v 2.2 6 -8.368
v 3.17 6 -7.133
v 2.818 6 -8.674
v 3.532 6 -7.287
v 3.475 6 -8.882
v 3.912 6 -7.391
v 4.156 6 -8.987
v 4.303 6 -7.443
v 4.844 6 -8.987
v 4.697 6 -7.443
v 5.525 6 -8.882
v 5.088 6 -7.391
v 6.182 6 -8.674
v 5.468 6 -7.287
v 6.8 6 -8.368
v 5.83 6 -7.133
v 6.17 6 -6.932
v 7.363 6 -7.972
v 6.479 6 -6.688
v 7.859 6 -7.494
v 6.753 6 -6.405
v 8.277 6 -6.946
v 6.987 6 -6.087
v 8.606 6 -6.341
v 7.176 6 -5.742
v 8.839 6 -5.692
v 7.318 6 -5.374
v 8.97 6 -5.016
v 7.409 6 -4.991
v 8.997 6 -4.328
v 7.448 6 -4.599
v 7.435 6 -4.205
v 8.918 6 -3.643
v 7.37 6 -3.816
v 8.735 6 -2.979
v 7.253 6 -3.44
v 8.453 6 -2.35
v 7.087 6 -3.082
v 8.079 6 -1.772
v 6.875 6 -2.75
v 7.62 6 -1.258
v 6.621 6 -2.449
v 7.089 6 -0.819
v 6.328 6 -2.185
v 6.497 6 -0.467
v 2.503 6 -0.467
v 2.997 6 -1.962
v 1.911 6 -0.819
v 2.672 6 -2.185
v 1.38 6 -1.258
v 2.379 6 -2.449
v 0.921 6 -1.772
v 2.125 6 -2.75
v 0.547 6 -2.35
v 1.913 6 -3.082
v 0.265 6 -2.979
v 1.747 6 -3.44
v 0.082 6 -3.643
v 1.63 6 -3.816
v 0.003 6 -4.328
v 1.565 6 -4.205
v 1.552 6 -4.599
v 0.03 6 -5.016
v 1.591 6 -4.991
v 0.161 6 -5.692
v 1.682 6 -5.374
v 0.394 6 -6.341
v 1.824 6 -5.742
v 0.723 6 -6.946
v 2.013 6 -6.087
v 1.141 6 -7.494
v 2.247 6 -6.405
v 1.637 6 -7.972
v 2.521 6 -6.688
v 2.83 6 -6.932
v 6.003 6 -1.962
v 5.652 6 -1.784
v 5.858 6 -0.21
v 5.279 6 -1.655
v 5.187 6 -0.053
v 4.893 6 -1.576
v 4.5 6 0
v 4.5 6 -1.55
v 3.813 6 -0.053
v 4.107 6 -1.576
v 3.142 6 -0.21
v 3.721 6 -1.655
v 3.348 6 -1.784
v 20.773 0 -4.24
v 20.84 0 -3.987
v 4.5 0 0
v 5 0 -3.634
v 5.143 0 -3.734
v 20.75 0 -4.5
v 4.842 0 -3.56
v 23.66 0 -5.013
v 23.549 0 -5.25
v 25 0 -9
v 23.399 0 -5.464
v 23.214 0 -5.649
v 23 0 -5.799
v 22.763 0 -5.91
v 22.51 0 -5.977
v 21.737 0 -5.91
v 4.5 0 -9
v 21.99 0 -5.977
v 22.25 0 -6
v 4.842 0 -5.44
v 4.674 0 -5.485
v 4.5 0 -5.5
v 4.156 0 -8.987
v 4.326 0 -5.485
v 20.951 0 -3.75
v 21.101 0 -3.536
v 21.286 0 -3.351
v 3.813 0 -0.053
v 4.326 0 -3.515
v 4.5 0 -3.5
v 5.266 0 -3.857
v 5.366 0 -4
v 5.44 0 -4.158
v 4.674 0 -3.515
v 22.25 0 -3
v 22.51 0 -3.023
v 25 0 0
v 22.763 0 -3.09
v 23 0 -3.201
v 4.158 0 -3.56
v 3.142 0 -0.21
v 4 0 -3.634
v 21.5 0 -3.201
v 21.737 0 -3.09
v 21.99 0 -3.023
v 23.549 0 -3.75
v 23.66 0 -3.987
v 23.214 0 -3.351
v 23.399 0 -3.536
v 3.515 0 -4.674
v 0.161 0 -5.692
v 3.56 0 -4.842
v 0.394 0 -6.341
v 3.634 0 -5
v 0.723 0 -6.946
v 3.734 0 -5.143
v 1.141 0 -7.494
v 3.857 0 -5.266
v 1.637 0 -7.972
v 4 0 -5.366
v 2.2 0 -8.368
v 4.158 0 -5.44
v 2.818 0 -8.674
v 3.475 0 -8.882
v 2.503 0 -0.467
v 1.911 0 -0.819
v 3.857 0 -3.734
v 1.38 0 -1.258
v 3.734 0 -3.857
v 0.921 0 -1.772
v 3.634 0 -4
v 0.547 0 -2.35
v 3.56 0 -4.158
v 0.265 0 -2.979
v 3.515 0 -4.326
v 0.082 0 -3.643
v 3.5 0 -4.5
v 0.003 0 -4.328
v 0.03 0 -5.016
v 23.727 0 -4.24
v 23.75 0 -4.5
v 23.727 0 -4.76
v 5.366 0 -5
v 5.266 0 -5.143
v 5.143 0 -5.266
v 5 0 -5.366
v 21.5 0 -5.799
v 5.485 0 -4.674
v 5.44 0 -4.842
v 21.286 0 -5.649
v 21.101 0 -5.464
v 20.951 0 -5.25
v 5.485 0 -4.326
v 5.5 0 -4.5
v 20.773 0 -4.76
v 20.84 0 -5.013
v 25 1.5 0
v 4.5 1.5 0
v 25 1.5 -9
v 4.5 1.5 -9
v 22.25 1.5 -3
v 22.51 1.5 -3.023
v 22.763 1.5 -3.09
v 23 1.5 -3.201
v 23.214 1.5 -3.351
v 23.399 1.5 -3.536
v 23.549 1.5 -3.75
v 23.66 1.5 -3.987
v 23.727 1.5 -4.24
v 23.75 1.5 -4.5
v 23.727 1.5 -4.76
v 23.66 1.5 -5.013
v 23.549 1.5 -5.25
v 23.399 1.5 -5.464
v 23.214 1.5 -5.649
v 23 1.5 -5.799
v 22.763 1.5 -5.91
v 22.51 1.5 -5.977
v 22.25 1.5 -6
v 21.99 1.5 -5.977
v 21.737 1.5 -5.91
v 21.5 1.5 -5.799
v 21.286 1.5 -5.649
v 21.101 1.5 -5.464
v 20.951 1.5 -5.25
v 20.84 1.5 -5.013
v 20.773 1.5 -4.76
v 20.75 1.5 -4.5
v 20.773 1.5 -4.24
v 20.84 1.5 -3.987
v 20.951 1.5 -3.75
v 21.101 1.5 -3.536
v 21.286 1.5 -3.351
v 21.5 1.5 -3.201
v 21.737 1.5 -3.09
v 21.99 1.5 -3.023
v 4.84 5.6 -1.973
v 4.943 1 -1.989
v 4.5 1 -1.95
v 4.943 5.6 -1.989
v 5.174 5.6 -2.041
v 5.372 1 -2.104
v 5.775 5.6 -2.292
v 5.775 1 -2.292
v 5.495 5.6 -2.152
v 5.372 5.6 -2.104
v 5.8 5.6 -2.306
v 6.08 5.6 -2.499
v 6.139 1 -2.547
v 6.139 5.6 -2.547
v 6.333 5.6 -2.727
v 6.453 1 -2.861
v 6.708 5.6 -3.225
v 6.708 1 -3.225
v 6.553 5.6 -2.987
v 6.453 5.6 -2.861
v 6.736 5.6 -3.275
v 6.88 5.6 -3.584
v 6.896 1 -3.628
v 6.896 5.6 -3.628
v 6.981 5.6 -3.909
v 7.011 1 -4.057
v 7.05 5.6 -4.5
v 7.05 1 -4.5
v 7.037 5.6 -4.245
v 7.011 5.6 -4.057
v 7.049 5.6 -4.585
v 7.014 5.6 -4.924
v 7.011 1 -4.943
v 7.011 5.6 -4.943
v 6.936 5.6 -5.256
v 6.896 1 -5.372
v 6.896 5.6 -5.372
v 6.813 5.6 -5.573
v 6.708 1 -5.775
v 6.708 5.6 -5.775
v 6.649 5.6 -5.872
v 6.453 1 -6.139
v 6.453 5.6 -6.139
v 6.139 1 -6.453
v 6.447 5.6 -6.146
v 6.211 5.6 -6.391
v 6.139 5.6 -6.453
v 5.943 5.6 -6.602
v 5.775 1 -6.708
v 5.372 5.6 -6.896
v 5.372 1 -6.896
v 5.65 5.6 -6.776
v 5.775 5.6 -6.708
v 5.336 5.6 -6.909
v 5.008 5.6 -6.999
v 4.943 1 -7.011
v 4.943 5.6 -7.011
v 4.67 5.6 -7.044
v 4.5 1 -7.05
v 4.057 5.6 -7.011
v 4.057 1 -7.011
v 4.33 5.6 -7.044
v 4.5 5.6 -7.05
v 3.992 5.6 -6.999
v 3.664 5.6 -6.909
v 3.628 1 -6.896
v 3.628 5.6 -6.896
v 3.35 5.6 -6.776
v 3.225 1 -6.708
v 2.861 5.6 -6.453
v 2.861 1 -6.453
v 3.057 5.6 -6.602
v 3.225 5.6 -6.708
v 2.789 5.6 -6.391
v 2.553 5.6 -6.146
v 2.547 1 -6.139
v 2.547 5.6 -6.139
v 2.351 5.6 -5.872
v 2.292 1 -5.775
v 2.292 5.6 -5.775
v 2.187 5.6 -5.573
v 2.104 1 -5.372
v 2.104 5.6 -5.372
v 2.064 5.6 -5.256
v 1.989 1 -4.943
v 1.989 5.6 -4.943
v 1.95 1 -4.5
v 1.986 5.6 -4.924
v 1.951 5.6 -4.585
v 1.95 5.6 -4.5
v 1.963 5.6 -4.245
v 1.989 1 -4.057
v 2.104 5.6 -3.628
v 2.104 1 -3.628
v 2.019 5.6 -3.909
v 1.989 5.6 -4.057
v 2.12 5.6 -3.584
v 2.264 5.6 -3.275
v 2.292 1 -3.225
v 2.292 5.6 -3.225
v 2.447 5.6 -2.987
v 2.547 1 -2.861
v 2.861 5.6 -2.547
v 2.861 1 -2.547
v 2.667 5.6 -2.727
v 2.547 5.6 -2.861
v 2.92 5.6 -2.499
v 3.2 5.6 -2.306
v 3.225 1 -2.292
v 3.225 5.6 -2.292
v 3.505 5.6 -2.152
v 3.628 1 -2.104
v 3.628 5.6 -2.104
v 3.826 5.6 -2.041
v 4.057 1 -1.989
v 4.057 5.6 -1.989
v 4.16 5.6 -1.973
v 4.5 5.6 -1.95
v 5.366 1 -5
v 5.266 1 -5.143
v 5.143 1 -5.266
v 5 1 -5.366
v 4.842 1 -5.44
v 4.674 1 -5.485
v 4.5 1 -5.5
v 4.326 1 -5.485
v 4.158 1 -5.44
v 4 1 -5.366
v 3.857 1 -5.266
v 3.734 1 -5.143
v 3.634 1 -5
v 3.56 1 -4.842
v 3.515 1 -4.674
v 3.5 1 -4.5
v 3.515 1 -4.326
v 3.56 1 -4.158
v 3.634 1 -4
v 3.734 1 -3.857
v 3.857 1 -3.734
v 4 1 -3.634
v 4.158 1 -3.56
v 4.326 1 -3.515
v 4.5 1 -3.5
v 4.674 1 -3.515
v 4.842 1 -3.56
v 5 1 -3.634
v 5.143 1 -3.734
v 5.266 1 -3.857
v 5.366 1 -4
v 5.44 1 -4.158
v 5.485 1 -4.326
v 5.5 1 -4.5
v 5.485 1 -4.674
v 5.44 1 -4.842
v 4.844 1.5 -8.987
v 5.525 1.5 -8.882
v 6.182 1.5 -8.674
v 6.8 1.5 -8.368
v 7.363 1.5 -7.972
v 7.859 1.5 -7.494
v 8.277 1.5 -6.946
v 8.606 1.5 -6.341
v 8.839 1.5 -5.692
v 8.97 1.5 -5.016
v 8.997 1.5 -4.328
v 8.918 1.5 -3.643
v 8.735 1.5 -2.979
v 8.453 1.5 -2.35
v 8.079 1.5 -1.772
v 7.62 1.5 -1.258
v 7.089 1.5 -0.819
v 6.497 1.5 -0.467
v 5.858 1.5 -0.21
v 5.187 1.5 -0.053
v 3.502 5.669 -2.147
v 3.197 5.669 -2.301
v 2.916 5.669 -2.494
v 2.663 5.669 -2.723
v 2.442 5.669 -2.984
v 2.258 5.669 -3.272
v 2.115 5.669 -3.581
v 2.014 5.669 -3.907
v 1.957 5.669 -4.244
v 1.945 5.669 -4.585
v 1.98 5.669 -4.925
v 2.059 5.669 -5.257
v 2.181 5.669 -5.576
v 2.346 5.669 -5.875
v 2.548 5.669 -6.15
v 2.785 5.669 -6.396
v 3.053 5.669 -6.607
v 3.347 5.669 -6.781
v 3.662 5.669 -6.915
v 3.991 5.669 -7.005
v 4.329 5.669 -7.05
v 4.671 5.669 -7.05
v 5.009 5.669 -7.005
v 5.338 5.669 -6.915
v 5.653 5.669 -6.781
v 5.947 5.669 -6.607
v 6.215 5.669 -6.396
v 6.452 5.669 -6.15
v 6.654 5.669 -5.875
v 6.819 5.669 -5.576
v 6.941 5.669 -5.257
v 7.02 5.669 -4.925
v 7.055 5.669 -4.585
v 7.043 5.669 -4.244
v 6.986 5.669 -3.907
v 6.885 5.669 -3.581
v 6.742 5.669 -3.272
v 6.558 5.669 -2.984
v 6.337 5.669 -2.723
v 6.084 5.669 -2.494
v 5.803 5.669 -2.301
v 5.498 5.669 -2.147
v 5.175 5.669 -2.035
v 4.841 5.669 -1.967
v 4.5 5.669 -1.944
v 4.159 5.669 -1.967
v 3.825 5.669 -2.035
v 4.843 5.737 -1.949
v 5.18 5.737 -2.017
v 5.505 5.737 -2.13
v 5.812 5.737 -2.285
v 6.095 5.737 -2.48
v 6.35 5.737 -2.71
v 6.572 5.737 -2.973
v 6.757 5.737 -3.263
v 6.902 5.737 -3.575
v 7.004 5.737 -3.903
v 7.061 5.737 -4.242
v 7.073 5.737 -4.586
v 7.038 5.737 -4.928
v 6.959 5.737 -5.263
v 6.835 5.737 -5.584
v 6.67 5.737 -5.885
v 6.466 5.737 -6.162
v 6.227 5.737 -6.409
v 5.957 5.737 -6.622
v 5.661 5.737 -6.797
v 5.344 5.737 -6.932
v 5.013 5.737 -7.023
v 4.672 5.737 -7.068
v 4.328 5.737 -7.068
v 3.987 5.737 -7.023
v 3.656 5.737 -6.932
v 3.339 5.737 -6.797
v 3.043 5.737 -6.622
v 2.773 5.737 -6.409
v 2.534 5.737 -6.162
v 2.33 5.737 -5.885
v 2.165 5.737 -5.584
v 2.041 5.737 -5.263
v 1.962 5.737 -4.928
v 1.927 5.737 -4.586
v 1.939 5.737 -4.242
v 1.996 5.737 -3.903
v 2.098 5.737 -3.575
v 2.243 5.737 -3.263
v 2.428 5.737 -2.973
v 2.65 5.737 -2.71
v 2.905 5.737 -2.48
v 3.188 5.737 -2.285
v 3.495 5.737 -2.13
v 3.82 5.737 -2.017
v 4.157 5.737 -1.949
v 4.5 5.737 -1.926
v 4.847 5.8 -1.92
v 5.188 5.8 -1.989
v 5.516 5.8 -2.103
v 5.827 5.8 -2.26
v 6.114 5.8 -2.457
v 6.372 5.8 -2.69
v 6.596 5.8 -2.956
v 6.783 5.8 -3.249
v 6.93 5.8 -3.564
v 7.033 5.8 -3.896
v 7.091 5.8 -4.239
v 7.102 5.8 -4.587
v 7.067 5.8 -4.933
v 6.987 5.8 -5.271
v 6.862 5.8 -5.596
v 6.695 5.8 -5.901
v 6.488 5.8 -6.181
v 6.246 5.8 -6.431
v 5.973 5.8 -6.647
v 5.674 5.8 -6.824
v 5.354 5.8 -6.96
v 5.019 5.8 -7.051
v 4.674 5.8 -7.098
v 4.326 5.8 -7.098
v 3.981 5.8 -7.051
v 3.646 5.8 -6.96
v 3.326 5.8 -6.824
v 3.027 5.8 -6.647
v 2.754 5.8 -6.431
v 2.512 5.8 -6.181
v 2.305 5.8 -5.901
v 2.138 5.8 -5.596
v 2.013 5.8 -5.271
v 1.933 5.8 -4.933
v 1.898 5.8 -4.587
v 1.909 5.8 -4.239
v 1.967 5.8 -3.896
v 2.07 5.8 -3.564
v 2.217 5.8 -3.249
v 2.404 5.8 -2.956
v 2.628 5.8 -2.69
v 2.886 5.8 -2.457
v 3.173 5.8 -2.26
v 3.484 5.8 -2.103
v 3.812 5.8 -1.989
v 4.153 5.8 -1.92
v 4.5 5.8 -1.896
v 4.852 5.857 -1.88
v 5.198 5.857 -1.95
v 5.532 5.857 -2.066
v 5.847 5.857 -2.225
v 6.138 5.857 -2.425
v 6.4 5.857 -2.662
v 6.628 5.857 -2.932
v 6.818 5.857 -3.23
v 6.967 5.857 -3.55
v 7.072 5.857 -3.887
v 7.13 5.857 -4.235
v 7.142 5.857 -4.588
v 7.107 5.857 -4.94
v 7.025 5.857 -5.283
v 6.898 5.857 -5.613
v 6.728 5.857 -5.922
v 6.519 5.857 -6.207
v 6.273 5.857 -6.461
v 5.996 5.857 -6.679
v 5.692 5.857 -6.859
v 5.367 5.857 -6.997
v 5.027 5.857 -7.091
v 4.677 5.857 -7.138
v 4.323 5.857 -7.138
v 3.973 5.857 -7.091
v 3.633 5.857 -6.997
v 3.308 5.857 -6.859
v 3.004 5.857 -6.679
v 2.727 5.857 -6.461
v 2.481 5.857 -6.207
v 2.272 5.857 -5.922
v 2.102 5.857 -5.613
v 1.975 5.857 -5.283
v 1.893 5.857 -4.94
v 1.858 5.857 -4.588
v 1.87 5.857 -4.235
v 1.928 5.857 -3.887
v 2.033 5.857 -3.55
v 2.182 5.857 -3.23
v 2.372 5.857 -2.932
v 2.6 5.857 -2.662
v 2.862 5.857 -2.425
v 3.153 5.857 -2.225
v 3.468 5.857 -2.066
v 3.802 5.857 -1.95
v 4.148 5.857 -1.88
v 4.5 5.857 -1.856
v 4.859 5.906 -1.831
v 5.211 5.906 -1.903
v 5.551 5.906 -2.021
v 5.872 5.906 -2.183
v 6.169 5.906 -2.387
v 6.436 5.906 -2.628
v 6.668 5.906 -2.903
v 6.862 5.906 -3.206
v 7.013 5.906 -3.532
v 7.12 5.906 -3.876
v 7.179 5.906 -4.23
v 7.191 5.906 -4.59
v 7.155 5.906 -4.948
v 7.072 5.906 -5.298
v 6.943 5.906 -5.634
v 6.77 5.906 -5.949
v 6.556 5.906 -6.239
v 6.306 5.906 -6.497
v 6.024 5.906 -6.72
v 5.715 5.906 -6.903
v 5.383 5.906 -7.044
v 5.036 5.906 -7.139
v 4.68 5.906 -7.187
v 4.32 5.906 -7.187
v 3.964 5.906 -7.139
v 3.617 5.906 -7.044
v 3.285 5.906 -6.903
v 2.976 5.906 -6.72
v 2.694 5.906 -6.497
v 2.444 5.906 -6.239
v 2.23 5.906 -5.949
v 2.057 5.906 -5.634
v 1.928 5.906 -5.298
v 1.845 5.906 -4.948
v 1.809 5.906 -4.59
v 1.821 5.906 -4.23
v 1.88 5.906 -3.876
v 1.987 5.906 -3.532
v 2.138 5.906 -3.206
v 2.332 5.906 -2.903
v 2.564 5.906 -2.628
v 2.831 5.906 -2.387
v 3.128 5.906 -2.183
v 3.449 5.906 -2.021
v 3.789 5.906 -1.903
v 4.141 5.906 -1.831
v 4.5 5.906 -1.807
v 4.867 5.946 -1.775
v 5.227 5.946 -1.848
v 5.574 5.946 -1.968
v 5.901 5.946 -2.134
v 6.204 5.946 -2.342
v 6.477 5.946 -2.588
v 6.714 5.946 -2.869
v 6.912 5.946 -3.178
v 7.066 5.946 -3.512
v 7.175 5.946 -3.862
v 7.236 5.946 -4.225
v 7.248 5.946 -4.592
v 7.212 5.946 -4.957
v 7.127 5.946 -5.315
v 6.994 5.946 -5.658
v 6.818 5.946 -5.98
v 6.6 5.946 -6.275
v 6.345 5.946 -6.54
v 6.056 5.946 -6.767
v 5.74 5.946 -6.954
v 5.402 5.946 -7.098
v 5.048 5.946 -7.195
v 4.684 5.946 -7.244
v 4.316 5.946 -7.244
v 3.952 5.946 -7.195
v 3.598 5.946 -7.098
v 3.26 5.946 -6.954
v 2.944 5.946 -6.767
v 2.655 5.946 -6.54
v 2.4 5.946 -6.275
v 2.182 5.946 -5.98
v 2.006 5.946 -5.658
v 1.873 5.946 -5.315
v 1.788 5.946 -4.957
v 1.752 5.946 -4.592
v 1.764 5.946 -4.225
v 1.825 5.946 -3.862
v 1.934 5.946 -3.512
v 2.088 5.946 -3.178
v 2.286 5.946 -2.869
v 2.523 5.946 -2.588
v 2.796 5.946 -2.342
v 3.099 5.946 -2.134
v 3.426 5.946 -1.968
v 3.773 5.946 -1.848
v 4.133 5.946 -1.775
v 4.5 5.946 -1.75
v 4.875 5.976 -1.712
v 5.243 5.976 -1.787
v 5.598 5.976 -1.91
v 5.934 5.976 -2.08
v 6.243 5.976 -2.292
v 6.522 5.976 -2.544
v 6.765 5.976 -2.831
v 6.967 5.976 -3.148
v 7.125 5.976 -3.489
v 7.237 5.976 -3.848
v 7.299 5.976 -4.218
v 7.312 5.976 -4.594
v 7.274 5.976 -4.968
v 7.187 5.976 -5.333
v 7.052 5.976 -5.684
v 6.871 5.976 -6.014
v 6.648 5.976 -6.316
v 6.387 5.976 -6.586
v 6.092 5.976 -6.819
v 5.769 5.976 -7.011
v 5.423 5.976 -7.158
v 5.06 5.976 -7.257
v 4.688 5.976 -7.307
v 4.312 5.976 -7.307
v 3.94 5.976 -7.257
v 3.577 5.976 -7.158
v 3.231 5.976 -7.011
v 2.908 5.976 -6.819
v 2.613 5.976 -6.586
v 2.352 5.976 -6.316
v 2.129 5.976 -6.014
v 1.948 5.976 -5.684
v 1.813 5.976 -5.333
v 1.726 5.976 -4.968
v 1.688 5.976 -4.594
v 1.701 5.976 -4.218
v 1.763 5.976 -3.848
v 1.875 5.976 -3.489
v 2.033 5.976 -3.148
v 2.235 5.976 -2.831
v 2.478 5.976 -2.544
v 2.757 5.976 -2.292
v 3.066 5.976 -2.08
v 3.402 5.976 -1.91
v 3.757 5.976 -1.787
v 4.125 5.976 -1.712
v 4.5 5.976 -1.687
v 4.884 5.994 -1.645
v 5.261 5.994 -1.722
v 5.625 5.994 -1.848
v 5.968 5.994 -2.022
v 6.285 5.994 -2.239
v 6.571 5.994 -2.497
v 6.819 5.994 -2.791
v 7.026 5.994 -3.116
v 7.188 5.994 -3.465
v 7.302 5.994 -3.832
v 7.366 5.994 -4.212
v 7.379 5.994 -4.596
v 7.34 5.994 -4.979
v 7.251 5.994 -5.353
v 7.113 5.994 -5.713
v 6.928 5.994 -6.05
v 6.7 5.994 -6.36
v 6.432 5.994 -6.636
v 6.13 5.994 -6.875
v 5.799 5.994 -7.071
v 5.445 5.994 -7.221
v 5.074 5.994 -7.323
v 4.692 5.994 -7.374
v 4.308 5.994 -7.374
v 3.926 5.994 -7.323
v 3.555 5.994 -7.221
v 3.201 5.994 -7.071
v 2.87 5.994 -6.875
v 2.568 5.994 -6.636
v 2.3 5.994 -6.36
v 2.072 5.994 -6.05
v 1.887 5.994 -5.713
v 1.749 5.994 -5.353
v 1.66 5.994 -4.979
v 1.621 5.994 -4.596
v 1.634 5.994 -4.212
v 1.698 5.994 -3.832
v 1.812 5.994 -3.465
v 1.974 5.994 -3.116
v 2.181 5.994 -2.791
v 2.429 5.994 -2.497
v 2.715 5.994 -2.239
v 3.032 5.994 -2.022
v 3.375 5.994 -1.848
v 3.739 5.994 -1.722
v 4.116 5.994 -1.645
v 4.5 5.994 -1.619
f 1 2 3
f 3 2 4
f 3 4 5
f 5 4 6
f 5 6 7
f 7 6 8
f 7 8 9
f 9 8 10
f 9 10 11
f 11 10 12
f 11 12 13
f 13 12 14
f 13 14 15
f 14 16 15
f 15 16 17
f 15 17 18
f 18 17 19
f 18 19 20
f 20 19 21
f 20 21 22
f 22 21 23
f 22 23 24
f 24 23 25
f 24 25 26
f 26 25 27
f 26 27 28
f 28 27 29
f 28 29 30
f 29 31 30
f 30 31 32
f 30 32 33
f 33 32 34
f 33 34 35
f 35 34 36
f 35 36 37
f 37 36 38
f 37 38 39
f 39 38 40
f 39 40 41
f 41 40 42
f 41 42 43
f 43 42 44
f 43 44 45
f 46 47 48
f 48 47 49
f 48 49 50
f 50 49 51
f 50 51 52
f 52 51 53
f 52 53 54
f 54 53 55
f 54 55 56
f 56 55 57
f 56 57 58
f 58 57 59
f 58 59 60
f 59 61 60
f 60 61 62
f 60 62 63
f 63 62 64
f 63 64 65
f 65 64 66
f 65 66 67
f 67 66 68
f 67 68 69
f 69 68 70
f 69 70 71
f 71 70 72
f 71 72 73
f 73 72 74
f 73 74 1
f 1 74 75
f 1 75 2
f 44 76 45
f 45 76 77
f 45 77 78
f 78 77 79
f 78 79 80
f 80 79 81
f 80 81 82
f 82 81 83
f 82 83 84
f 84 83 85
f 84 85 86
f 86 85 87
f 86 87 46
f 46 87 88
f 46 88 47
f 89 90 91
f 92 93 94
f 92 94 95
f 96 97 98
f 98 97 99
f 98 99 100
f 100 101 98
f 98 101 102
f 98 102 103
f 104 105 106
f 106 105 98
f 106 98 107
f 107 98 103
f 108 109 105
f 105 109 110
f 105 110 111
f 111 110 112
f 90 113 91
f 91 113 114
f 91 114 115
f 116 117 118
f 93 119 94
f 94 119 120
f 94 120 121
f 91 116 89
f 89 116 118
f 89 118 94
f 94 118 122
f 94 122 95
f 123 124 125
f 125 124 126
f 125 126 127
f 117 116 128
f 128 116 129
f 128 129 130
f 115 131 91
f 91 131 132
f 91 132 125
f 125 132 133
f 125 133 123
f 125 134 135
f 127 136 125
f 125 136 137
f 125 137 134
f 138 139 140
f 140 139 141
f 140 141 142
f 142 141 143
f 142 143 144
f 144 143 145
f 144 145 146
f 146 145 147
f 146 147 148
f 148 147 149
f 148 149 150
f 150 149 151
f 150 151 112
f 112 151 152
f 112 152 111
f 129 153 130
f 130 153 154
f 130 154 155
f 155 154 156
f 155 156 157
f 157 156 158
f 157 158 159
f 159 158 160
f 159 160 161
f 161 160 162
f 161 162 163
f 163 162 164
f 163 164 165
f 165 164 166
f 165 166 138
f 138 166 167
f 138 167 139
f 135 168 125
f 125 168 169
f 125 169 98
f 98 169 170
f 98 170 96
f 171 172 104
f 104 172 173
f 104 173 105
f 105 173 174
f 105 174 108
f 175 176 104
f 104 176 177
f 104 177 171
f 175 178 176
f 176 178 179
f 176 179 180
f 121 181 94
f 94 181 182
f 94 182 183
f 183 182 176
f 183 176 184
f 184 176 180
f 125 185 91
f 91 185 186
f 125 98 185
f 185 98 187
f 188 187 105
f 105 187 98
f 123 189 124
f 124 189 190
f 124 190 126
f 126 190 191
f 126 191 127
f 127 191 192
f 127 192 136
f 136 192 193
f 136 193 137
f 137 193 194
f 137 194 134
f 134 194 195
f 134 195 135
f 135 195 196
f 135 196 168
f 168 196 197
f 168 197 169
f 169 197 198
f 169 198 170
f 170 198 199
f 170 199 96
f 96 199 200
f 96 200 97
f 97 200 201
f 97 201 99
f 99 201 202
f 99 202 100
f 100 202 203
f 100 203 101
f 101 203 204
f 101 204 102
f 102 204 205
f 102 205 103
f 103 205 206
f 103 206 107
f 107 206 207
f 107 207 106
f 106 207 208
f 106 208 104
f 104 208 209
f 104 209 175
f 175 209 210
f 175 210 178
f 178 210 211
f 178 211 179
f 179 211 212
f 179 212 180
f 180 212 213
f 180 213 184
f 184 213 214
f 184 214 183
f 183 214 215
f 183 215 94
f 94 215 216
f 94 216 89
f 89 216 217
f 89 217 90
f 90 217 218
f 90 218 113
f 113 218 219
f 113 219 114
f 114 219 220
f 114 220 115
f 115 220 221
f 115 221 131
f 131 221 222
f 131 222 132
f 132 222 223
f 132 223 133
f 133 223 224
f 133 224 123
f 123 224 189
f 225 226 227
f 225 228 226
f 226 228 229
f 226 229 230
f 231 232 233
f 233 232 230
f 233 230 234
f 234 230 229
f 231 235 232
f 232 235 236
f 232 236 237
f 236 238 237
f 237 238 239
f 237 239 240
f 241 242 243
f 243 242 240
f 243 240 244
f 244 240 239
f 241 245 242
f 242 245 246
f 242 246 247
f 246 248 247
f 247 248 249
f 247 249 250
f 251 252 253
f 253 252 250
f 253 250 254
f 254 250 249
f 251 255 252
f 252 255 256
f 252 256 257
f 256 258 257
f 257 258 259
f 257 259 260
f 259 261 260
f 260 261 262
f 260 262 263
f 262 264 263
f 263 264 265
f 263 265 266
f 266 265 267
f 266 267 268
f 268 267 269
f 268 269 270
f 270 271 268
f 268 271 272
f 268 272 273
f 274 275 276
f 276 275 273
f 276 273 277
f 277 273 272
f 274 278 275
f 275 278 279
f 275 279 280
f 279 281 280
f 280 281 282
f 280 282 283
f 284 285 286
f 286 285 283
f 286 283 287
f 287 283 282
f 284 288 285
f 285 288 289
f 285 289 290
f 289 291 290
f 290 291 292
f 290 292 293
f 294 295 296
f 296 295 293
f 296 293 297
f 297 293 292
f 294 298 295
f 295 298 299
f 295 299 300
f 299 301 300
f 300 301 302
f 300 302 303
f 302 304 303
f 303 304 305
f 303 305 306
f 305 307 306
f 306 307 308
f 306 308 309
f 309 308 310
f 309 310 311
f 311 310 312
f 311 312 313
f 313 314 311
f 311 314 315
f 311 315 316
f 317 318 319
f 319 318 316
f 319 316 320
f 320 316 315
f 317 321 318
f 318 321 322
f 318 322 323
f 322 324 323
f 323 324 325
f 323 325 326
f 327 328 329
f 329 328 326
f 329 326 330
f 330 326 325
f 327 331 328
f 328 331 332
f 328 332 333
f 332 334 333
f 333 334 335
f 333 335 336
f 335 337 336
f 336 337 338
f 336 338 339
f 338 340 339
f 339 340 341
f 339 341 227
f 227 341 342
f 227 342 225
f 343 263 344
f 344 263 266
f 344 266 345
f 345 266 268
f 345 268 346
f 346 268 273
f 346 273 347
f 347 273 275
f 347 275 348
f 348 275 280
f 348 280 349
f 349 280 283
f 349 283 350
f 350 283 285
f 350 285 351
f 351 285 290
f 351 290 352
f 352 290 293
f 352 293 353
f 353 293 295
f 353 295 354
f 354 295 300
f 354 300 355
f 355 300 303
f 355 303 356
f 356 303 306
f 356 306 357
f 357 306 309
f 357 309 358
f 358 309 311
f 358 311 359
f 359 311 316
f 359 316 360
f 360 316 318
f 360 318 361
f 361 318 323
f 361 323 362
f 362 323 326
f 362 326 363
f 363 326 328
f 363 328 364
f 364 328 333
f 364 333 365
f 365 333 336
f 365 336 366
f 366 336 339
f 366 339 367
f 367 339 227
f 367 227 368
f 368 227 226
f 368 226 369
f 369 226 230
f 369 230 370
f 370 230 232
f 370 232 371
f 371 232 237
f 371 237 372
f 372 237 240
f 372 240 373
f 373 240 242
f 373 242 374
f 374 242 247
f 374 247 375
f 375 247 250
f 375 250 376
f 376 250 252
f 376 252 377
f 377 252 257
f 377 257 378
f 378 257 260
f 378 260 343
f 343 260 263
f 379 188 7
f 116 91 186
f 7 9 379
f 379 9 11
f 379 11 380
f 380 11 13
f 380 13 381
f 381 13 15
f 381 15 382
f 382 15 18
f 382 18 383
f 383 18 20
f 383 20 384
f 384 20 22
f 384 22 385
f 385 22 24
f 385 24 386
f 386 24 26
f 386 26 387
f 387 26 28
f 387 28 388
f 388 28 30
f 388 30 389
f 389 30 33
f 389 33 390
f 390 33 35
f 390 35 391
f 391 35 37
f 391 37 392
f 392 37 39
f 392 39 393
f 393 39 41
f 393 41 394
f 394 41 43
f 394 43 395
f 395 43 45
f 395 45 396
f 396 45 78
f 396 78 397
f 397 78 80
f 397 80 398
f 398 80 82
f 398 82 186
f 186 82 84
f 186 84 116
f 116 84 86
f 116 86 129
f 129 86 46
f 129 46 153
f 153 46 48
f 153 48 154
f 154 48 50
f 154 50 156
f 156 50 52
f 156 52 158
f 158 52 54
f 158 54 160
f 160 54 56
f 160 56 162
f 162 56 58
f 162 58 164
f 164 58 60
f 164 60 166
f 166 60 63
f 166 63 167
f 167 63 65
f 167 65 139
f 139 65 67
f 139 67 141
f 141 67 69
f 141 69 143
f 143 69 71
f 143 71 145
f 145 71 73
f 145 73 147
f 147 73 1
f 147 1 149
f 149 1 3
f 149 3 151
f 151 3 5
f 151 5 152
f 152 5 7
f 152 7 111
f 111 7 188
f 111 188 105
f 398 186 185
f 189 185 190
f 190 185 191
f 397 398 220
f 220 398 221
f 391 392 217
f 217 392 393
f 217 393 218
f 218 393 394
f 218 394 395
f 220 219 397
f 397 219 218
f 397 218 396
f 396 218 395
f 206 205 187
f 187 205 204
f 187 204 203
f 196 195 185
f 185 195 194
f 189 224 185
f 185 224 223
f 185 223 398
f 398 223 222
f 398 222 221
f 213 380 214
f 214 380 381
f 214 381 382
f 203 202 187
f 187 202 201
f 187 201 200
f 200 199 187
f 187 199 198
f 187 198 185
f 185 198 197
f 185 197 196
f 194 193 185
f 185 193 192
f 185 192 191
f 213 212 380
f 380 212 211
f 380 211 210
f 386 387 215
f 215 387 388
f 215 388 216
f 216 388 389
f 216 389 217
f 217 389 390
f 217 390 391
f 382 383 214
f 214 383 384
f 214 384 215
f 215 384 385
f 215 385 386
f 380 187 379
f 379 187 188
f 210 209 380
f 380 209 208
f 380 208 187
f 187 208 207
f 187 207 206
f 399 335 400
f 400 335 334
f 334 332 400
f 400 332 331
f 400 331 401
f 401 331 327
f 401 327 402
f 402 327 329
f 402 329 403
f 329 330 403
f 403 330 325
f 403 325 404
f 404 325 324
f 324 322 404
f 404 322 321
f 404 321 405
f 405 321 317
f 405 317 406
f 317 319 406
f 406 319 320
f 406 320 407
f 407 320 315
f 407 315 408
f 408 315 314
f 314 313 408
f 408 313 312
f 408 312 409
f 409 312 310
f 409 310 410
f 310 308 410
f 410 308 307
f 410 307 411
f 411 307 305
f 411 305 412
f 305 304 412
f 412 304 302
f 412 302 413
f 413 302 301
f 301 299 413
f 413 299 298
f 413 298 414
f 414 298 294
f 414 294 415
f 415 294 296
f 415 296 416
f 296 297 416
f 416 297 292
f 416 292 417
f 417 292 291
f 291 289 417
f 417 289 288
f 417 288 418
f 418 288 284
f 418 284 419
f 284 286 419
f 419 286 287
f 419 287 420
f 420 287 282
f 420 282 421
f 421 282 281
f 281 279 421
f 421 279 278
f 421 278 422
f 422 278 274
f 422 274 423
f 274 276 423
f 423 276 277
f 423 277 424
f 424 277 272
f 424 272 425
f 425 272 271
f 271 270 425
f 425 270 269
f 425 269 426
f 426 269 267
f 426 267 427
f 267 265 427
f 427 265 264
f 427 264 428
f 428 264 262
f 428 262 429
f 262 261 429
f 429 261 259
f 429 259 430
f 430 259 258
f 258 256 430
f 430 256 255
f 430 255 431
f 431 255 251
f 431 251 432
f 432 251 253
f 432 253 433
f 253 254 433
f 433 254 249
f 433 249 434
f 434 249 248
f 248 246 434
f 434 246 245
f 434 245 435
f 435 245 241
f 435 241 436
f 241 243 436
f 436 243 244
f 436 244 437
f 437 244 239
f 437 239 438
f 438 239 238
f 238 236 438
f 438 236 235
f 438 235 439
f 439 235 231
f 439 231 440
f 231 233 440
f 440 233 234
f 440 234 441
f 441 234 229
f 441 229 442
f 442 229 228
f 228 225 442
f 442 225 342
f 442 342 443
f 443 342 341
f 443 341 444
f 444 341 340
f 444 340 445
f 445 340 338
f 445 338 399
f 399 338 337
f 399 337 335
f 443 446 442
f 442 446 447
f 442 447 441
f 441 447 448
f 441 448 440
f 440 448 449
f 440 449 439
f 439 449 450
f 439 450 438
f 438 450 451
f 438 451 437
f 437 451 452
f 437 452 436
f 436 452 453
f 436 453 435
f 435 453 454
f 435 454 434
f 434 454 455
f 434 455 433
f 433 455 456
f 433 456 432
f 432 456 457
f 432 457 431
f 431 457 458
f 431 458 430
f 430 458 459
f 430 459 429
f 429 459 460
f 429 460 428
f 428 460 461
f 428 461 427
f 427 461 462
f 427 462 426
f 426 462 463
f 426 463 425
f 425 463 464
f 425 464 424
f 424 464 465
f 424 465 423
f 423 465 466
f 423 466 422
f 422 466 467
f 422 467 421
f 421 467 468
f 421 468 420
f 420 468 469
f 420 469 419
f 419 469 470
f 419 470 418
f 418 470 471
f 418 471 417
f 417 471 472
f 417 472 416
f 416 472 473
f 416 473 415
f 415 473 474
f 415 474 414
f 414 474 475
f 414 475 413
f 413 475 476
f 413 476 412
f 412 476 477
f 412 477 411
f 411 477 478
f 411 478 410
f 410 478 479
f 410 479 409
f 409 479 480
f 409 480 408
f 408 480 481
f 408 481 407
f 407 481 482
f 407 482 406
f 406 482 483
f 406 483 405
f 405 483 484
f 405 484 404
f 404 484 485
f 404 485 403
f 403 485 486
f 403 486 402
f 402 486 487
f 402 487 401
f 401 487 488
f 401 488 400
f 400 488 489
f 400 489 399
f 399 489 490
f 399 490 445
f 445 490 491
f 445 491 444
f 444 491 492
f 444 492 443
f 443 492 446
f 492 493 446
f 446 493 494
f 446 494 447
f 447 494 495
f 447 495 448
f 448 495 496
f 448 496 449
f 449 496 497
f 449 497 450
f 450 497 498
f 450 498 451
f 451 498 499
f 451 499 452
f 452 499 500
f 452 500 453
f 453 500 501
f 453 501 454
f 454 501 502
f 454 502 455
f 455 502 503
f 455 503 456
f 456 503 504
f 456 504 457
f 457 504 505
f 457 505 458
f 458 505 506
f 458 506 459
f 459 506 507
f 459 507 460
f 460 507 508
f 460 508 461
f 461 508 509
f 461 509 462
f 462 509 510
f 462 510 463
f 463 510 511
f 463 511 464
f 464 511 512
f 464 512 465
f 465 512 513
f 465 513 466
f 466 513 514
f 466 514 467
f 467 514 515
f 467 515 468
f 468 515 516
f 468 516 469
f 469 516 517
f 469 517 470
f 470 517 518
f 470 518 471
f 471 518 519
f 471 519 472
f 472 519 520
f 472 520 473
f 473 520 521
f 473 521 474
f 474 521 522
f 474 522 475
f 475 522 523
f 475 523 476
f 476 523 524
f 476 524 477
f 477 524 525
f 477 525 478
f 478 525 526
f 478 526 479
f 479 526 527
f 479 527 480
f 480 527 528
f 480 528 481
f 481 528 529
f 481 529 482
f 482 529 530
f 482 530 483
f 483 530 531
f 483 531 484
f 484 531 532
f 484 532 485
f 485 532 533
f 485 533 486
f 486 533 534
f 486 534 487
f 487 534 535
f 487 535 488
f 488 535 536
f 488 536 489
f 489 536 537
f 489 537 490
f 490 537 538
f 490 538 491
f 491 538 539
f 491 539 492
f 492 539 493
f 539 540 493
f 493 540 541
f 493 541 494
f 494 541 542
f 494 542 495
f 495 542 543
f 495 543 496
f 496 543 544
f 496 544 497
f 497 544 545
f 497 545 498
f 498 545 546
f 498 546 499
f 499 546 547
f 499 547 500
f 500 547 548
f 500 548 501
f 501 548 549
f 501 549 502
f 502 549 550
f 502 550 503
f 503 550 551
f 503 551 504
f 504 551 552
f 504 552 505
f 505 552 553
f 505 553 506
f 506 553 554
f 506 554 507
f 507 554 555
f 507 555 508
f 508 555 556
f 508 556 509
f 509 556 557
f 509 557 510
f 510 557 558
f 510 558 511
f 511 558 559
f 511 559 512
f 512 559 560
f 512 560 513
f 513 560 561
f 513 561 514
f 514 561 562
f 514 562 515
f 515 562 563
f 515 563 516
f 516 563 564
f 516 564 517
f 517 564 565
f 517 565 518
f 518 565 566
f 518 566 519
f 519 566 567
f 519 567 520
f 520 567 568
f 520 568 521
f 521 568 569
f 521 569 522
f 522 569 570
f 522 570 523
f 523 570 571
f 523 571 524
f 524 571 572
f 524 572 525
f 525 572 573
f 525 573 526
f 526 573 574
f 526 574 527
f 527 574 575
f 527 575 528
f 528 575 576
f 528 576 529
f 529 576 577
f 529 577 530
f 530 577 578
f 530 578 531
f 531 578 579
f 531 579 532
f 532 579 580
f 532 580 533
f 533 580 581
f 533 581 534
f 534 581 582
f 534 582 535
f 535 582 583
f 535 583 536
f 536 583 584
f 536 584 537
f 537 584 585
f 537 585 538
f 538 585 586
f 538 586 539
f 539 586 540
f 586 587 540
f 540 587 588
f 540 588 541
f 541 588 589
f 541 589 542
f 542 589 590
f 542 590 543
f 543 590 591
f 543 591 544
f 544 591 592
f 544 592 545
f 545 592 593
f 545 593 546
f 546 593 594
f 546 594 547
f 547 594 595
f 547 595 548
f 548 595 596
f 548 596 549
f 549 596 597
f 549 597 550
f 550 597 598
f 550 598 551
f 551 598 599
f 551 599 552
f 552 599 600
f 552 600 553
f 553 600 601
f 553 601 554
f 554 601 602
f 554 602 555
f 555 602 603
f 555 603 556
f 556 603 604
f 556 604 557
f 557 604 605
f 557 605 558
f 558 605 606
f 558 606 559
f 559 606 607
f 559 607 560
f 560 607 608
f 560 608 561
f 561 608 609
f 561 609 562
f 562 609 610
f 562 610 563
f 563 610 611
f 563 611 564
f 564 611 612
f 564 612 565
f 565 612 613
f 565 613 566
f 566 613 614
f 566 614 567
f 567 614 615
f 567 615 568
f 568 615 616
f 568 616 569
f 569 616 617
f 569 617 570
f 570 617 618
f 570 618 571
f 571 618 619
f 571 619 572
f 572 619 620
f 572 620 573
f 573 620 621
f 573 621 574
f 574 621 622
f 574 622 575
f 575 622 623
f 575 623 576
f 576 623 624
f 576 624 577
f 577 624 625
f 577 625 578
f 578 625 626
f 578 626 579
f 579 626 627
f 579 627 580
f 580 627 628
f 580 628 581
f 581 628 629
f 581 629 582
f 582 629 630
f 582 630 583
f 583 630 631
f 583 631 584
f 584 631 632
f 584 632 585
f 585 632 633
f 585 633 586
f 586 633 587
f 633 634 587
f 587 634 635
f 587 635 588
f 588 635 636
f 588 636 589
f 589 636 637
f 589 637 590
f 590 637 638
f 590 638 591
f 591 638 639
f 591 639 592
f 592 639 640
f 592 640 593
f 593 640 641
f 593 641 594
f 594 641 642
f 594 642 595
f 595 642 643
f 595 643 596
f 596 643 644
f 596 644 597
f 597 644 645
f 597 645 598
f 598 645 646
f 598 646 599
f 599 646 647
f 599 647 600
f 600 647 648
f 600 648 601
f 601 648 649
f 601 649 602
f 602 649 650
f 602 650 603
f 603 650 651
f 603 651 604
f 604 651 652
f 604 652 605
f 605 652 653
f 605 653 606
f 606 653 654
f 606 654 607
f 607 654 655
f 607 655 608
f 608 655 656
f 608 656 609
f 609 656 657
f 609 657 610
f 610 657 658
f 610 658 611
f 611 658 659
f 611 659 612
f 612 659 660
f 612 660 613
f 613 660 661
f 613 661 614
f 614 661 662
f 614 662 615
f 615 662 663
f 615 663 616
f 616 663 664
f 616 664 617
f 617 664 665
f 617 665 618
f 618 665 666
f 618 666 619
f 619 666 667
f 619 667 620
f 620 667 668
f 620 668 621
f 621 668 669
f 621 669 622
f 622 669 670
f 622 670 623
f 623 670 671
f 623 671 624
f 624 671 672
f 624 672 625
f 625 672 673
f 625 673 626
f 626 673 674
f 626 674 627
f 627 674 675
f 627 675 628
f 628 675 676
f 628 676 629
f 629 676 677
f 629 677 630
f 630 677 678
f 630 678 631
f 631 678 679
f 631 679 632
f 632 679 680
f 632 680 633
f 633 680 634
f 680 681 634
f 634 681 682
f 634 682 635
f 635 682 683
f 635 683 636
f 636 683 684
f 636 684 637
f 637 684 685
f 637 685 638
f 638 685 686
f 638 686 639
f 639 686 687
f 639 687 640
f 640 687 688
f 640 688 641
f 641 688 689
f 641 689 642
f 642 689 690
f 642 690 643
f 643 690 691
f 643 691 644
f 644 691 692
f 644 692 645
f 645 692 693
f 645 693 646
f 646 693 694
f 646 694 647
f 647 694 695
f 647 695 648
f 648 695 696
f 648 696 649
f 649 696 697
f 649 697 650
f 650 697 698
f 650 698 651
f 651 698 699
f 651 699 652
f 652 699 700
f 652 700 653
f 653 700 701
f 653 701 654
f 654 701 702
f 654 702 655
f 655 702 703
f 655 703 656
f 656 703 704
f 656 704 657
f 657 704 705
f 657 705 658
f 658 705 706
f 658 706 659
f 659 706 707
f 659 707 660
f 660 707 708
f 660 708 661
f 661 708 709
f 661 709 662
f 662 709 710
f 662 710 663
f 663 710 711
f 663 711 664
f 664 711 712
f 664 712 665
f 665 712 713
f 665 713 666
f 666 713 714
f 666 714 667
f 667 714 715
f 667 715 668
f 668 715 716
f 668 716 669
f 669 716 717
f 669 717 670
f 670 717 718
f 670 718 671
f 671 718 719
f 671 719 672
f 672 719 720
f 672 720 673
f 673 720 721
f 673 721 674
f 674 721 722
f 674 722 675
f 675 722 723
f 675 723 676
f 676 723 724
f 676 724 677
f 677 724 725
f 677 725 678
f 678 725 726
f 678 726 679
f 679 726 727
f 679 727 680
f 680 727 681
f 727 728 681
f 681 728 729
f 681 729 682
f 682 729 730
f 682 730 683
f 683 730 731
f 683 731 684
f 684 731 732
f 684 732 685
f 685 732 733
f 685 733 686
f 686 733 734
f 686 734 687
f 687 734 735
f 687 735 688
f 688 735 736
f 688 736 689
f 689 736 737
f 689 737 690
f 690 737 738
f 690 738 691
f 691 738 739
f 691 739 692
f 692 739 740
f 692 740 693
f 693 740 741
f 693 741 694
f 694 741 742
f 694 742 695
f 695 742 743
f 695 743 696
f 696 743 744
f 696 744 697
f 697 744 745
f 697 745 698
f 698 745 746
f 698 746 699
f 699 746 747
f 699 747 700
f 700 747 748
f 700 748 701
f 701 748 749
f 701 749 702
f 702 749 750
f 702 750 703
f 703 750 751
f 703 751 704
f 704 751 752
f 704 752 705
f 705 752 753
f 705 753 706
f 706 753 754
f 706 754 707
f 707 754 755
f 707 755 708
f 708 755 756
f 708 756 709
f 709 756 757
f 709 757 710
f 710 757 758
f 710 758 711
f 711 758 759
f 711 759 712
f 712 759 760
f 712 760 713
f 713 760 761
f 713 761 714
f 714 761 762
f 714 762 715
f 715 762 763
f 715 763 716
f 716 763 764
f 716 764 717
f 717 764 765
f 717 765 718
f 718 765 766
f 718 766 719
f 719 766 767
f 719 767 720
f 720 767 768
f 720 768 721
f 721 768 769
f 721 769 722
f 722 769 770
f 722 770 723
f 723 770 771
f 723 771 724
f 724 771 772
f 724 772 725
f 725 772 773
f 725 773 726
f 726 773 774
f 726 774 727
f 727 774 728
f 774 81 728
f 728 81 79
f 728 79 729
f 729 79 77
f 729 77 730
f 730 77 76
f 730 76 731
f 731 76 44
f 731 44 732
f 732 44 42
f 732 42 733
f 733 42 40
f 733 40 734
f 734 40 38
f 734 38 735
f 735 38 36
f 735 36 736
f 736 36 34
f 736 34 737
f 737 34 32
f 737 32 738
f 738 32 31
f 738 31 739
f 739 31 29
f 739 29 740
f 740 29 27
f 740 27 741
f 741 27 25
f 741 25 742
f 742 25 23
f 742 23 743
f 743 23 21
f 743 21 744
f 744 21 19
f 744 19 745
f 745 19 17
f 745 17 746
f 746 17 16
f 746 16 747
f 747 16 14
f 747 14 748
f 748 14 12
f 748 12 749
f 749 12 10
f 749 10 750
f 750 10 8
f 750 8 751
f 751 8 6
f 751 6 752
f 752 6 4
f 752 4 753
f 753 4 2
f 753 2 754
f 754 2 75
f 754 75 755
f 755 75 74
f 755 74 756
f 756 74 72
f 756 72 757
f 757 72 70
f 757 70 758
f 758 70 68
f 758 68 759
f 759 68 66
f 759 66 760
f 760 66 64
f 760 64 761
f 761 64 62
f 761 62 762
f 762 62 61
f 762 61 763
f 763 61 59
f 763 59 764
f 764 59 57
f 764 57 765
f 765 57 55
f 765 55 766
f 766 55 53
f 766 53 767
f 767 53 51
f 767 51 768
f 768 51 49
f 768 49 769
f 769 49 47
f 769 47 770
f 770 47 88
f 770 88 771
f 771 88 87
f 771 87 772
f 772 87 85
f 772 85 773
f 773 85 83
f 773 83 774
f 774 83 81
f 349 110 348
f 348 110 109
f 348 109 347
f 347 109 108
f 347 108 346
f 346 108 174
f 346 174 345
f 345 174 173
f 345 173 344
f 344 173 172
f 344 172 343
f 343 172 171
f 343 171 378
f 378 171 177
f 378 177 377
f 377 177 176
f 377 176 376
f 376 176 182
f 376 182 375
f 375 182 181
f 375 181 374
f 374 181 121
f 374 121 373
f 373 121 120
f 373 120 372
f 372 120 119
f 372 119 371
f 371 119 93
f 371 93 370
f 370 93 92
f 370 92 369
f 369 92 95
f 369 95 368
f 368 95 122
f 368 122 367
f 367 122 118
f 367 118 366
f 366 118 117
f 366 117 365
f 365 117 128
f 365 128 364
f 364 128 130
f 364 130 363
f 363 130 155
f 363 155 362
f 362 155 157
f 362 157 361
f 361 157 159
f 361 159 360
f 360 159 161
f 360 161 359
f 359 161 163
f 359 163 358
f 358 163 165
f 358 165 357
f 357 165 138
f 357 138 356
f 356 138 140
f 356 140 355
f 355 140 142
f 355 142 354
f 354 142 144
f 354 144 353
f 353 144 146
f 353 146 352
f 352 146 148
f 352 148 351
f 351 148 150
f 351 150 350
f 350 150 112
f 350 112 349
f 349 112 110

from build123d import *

# Parameters (mm, degrees)
SKETCH2_W               = 25
SKETCH2_H               = 9
BOSS_EXTRUDE3_DEPTH     = 6
SKETCH3_R               = 2.55
CUT_EXTRUDE1_DEPTH      = 5
CUT_EXTRUDE2_DEPTH      = 28.239676944
CUT_EXTRUDE2_DEPTH_BACK = 28.239676944
SKETCH4_R               = 1.5
SKETCH5_R               = 1.5
CUT_EXTRUDE3_DEPTH      = 4.5
CUT_EXTRUDE4_DEPTH      = 28.239676944
FILLET2_R               = 0.4
SKETCH8_R               = 1
CUT_EXTRUDE5_DEPTH      = 28.239676944


with BuildPart() as part:
    # Sketch2 → Boss-Extrude3 (new body)
    with BuildSketch(Plane(origin=(0, 0, 0), x_dir=(1, 0, 0), z_dir=(0, 1, 0))):
        with Locations((12.5, 4.5)):
            Rectangle(SKETCH2_W, SKETCH2_H)
    extrude(amount=BOSS_EXTRUDE3_DEPTH)

    # Sketch3 → Cut-Extrude1 (cut)
    with BuildSketch(Plane(origin=(0, 6, 0), x_dir=(1, 0, 0), z_dir=(0, 1, 0))):
        with Locations(Location((4.5, 4.5, 0), (0, 0, 270))):
            Circle(SKETCH3_R)
    extrude(amount=-CUT_EXTRUDE1_DEPTH, mode=Mode.SUBTRACT)

    # Sketch4 → Cut-Extrude2 (cut, two sides: drawn at the far end of the back side and taken through both)
    with BuildSketch(Plane(origin=(0, 6, 0), x_dir=(1, 0, 0), z_dir=(0, 1, 0)).offset(-CUT_EXTRUDE2_DEPTH_BACK)):
        with Locations(Location((22.25, 4.5, 0), (0, 0, 270))):
            Circle(SKETCH4_R)
    extrude(amount=CUT_EXTRUDE2_DEPTH + CUT_EXTRUDE2_DEPTH_BACK, mode=Mode.SUBTRACT)

    # Sketch5 → Cut-Extrude3 (cut)
    with BuildSketch(Plane(origin=(0, 6, 0), x_dir=(1, 0, 0), z_dir=(0, 1, 0))):
        with BuildLine():
            Line((25, 9), (4.5, 9))
            ThreePointArc((4.5, 9), (7.681980515, 7.681980515), (9, 4.5))
            ThreePointArc((9, 4.5), (7.681980515, 1.318019485), (4.5, 0))
            Line((4.5, 0), (25, 0))
            Line((25, 0), (25, 9))
        make_face()
        with Locations(Location((22.25, 4.5, 0), (0, 0, 270))):
            Circle(SKETCH5_R, mode=Mode.SUBTRACT)
    extrude(amount=-CUT_EXTRUDE3_DEPTH, mode=Mode.SUBTRACT)

    # Sketch6 → Cut-Extrude4 (cut, through all)
    with BuildSketch(Plane(origin=(0, 6, 0), x_dir=(1, 0, 0), z_dir=(0, 1, 0))):
        with BuildLine():
            ThreePointArc((0, 4.5), (1.318019485, 7.681980515), (4.5, 9))
            Line((4.5, 9), (0, 9))
            Line((0, 9), (0, 4.5))
        make_face()
        with BuildLine():
            ThreePointArc((4.5, 0), (1.318019485, 1.318019485), (0, 4.5))
            Line((0, 4.5), (0, 0))
            Line((0, 0), (4.5, 0))
        make_face()
    extrude(amount=-CUT_EXTRUDE4_DEPTH, mode=Mode.SUBTRACT)

    # Fillet2
    fillet2_edges = [part.edges().sort_by_distance(p)[0] for p in [
        (4.5, 6, -7.05),
    ]]
    fillet(fillet2_edges, radius=FILLET2_R)

    # Sketch8 → Cut-Extrude5 (cut, through all)
    with BuildSketch(Plane.XZ):
        with Locations(Location((4.5, -4.5, 0), (0, 0, 270))):
            Circle(SKETCH8_R)
    extrude(amount=-CUT_EXTRUDE5_DEPTH, mode=Mode.SUBTRACT)


solid = part.part
